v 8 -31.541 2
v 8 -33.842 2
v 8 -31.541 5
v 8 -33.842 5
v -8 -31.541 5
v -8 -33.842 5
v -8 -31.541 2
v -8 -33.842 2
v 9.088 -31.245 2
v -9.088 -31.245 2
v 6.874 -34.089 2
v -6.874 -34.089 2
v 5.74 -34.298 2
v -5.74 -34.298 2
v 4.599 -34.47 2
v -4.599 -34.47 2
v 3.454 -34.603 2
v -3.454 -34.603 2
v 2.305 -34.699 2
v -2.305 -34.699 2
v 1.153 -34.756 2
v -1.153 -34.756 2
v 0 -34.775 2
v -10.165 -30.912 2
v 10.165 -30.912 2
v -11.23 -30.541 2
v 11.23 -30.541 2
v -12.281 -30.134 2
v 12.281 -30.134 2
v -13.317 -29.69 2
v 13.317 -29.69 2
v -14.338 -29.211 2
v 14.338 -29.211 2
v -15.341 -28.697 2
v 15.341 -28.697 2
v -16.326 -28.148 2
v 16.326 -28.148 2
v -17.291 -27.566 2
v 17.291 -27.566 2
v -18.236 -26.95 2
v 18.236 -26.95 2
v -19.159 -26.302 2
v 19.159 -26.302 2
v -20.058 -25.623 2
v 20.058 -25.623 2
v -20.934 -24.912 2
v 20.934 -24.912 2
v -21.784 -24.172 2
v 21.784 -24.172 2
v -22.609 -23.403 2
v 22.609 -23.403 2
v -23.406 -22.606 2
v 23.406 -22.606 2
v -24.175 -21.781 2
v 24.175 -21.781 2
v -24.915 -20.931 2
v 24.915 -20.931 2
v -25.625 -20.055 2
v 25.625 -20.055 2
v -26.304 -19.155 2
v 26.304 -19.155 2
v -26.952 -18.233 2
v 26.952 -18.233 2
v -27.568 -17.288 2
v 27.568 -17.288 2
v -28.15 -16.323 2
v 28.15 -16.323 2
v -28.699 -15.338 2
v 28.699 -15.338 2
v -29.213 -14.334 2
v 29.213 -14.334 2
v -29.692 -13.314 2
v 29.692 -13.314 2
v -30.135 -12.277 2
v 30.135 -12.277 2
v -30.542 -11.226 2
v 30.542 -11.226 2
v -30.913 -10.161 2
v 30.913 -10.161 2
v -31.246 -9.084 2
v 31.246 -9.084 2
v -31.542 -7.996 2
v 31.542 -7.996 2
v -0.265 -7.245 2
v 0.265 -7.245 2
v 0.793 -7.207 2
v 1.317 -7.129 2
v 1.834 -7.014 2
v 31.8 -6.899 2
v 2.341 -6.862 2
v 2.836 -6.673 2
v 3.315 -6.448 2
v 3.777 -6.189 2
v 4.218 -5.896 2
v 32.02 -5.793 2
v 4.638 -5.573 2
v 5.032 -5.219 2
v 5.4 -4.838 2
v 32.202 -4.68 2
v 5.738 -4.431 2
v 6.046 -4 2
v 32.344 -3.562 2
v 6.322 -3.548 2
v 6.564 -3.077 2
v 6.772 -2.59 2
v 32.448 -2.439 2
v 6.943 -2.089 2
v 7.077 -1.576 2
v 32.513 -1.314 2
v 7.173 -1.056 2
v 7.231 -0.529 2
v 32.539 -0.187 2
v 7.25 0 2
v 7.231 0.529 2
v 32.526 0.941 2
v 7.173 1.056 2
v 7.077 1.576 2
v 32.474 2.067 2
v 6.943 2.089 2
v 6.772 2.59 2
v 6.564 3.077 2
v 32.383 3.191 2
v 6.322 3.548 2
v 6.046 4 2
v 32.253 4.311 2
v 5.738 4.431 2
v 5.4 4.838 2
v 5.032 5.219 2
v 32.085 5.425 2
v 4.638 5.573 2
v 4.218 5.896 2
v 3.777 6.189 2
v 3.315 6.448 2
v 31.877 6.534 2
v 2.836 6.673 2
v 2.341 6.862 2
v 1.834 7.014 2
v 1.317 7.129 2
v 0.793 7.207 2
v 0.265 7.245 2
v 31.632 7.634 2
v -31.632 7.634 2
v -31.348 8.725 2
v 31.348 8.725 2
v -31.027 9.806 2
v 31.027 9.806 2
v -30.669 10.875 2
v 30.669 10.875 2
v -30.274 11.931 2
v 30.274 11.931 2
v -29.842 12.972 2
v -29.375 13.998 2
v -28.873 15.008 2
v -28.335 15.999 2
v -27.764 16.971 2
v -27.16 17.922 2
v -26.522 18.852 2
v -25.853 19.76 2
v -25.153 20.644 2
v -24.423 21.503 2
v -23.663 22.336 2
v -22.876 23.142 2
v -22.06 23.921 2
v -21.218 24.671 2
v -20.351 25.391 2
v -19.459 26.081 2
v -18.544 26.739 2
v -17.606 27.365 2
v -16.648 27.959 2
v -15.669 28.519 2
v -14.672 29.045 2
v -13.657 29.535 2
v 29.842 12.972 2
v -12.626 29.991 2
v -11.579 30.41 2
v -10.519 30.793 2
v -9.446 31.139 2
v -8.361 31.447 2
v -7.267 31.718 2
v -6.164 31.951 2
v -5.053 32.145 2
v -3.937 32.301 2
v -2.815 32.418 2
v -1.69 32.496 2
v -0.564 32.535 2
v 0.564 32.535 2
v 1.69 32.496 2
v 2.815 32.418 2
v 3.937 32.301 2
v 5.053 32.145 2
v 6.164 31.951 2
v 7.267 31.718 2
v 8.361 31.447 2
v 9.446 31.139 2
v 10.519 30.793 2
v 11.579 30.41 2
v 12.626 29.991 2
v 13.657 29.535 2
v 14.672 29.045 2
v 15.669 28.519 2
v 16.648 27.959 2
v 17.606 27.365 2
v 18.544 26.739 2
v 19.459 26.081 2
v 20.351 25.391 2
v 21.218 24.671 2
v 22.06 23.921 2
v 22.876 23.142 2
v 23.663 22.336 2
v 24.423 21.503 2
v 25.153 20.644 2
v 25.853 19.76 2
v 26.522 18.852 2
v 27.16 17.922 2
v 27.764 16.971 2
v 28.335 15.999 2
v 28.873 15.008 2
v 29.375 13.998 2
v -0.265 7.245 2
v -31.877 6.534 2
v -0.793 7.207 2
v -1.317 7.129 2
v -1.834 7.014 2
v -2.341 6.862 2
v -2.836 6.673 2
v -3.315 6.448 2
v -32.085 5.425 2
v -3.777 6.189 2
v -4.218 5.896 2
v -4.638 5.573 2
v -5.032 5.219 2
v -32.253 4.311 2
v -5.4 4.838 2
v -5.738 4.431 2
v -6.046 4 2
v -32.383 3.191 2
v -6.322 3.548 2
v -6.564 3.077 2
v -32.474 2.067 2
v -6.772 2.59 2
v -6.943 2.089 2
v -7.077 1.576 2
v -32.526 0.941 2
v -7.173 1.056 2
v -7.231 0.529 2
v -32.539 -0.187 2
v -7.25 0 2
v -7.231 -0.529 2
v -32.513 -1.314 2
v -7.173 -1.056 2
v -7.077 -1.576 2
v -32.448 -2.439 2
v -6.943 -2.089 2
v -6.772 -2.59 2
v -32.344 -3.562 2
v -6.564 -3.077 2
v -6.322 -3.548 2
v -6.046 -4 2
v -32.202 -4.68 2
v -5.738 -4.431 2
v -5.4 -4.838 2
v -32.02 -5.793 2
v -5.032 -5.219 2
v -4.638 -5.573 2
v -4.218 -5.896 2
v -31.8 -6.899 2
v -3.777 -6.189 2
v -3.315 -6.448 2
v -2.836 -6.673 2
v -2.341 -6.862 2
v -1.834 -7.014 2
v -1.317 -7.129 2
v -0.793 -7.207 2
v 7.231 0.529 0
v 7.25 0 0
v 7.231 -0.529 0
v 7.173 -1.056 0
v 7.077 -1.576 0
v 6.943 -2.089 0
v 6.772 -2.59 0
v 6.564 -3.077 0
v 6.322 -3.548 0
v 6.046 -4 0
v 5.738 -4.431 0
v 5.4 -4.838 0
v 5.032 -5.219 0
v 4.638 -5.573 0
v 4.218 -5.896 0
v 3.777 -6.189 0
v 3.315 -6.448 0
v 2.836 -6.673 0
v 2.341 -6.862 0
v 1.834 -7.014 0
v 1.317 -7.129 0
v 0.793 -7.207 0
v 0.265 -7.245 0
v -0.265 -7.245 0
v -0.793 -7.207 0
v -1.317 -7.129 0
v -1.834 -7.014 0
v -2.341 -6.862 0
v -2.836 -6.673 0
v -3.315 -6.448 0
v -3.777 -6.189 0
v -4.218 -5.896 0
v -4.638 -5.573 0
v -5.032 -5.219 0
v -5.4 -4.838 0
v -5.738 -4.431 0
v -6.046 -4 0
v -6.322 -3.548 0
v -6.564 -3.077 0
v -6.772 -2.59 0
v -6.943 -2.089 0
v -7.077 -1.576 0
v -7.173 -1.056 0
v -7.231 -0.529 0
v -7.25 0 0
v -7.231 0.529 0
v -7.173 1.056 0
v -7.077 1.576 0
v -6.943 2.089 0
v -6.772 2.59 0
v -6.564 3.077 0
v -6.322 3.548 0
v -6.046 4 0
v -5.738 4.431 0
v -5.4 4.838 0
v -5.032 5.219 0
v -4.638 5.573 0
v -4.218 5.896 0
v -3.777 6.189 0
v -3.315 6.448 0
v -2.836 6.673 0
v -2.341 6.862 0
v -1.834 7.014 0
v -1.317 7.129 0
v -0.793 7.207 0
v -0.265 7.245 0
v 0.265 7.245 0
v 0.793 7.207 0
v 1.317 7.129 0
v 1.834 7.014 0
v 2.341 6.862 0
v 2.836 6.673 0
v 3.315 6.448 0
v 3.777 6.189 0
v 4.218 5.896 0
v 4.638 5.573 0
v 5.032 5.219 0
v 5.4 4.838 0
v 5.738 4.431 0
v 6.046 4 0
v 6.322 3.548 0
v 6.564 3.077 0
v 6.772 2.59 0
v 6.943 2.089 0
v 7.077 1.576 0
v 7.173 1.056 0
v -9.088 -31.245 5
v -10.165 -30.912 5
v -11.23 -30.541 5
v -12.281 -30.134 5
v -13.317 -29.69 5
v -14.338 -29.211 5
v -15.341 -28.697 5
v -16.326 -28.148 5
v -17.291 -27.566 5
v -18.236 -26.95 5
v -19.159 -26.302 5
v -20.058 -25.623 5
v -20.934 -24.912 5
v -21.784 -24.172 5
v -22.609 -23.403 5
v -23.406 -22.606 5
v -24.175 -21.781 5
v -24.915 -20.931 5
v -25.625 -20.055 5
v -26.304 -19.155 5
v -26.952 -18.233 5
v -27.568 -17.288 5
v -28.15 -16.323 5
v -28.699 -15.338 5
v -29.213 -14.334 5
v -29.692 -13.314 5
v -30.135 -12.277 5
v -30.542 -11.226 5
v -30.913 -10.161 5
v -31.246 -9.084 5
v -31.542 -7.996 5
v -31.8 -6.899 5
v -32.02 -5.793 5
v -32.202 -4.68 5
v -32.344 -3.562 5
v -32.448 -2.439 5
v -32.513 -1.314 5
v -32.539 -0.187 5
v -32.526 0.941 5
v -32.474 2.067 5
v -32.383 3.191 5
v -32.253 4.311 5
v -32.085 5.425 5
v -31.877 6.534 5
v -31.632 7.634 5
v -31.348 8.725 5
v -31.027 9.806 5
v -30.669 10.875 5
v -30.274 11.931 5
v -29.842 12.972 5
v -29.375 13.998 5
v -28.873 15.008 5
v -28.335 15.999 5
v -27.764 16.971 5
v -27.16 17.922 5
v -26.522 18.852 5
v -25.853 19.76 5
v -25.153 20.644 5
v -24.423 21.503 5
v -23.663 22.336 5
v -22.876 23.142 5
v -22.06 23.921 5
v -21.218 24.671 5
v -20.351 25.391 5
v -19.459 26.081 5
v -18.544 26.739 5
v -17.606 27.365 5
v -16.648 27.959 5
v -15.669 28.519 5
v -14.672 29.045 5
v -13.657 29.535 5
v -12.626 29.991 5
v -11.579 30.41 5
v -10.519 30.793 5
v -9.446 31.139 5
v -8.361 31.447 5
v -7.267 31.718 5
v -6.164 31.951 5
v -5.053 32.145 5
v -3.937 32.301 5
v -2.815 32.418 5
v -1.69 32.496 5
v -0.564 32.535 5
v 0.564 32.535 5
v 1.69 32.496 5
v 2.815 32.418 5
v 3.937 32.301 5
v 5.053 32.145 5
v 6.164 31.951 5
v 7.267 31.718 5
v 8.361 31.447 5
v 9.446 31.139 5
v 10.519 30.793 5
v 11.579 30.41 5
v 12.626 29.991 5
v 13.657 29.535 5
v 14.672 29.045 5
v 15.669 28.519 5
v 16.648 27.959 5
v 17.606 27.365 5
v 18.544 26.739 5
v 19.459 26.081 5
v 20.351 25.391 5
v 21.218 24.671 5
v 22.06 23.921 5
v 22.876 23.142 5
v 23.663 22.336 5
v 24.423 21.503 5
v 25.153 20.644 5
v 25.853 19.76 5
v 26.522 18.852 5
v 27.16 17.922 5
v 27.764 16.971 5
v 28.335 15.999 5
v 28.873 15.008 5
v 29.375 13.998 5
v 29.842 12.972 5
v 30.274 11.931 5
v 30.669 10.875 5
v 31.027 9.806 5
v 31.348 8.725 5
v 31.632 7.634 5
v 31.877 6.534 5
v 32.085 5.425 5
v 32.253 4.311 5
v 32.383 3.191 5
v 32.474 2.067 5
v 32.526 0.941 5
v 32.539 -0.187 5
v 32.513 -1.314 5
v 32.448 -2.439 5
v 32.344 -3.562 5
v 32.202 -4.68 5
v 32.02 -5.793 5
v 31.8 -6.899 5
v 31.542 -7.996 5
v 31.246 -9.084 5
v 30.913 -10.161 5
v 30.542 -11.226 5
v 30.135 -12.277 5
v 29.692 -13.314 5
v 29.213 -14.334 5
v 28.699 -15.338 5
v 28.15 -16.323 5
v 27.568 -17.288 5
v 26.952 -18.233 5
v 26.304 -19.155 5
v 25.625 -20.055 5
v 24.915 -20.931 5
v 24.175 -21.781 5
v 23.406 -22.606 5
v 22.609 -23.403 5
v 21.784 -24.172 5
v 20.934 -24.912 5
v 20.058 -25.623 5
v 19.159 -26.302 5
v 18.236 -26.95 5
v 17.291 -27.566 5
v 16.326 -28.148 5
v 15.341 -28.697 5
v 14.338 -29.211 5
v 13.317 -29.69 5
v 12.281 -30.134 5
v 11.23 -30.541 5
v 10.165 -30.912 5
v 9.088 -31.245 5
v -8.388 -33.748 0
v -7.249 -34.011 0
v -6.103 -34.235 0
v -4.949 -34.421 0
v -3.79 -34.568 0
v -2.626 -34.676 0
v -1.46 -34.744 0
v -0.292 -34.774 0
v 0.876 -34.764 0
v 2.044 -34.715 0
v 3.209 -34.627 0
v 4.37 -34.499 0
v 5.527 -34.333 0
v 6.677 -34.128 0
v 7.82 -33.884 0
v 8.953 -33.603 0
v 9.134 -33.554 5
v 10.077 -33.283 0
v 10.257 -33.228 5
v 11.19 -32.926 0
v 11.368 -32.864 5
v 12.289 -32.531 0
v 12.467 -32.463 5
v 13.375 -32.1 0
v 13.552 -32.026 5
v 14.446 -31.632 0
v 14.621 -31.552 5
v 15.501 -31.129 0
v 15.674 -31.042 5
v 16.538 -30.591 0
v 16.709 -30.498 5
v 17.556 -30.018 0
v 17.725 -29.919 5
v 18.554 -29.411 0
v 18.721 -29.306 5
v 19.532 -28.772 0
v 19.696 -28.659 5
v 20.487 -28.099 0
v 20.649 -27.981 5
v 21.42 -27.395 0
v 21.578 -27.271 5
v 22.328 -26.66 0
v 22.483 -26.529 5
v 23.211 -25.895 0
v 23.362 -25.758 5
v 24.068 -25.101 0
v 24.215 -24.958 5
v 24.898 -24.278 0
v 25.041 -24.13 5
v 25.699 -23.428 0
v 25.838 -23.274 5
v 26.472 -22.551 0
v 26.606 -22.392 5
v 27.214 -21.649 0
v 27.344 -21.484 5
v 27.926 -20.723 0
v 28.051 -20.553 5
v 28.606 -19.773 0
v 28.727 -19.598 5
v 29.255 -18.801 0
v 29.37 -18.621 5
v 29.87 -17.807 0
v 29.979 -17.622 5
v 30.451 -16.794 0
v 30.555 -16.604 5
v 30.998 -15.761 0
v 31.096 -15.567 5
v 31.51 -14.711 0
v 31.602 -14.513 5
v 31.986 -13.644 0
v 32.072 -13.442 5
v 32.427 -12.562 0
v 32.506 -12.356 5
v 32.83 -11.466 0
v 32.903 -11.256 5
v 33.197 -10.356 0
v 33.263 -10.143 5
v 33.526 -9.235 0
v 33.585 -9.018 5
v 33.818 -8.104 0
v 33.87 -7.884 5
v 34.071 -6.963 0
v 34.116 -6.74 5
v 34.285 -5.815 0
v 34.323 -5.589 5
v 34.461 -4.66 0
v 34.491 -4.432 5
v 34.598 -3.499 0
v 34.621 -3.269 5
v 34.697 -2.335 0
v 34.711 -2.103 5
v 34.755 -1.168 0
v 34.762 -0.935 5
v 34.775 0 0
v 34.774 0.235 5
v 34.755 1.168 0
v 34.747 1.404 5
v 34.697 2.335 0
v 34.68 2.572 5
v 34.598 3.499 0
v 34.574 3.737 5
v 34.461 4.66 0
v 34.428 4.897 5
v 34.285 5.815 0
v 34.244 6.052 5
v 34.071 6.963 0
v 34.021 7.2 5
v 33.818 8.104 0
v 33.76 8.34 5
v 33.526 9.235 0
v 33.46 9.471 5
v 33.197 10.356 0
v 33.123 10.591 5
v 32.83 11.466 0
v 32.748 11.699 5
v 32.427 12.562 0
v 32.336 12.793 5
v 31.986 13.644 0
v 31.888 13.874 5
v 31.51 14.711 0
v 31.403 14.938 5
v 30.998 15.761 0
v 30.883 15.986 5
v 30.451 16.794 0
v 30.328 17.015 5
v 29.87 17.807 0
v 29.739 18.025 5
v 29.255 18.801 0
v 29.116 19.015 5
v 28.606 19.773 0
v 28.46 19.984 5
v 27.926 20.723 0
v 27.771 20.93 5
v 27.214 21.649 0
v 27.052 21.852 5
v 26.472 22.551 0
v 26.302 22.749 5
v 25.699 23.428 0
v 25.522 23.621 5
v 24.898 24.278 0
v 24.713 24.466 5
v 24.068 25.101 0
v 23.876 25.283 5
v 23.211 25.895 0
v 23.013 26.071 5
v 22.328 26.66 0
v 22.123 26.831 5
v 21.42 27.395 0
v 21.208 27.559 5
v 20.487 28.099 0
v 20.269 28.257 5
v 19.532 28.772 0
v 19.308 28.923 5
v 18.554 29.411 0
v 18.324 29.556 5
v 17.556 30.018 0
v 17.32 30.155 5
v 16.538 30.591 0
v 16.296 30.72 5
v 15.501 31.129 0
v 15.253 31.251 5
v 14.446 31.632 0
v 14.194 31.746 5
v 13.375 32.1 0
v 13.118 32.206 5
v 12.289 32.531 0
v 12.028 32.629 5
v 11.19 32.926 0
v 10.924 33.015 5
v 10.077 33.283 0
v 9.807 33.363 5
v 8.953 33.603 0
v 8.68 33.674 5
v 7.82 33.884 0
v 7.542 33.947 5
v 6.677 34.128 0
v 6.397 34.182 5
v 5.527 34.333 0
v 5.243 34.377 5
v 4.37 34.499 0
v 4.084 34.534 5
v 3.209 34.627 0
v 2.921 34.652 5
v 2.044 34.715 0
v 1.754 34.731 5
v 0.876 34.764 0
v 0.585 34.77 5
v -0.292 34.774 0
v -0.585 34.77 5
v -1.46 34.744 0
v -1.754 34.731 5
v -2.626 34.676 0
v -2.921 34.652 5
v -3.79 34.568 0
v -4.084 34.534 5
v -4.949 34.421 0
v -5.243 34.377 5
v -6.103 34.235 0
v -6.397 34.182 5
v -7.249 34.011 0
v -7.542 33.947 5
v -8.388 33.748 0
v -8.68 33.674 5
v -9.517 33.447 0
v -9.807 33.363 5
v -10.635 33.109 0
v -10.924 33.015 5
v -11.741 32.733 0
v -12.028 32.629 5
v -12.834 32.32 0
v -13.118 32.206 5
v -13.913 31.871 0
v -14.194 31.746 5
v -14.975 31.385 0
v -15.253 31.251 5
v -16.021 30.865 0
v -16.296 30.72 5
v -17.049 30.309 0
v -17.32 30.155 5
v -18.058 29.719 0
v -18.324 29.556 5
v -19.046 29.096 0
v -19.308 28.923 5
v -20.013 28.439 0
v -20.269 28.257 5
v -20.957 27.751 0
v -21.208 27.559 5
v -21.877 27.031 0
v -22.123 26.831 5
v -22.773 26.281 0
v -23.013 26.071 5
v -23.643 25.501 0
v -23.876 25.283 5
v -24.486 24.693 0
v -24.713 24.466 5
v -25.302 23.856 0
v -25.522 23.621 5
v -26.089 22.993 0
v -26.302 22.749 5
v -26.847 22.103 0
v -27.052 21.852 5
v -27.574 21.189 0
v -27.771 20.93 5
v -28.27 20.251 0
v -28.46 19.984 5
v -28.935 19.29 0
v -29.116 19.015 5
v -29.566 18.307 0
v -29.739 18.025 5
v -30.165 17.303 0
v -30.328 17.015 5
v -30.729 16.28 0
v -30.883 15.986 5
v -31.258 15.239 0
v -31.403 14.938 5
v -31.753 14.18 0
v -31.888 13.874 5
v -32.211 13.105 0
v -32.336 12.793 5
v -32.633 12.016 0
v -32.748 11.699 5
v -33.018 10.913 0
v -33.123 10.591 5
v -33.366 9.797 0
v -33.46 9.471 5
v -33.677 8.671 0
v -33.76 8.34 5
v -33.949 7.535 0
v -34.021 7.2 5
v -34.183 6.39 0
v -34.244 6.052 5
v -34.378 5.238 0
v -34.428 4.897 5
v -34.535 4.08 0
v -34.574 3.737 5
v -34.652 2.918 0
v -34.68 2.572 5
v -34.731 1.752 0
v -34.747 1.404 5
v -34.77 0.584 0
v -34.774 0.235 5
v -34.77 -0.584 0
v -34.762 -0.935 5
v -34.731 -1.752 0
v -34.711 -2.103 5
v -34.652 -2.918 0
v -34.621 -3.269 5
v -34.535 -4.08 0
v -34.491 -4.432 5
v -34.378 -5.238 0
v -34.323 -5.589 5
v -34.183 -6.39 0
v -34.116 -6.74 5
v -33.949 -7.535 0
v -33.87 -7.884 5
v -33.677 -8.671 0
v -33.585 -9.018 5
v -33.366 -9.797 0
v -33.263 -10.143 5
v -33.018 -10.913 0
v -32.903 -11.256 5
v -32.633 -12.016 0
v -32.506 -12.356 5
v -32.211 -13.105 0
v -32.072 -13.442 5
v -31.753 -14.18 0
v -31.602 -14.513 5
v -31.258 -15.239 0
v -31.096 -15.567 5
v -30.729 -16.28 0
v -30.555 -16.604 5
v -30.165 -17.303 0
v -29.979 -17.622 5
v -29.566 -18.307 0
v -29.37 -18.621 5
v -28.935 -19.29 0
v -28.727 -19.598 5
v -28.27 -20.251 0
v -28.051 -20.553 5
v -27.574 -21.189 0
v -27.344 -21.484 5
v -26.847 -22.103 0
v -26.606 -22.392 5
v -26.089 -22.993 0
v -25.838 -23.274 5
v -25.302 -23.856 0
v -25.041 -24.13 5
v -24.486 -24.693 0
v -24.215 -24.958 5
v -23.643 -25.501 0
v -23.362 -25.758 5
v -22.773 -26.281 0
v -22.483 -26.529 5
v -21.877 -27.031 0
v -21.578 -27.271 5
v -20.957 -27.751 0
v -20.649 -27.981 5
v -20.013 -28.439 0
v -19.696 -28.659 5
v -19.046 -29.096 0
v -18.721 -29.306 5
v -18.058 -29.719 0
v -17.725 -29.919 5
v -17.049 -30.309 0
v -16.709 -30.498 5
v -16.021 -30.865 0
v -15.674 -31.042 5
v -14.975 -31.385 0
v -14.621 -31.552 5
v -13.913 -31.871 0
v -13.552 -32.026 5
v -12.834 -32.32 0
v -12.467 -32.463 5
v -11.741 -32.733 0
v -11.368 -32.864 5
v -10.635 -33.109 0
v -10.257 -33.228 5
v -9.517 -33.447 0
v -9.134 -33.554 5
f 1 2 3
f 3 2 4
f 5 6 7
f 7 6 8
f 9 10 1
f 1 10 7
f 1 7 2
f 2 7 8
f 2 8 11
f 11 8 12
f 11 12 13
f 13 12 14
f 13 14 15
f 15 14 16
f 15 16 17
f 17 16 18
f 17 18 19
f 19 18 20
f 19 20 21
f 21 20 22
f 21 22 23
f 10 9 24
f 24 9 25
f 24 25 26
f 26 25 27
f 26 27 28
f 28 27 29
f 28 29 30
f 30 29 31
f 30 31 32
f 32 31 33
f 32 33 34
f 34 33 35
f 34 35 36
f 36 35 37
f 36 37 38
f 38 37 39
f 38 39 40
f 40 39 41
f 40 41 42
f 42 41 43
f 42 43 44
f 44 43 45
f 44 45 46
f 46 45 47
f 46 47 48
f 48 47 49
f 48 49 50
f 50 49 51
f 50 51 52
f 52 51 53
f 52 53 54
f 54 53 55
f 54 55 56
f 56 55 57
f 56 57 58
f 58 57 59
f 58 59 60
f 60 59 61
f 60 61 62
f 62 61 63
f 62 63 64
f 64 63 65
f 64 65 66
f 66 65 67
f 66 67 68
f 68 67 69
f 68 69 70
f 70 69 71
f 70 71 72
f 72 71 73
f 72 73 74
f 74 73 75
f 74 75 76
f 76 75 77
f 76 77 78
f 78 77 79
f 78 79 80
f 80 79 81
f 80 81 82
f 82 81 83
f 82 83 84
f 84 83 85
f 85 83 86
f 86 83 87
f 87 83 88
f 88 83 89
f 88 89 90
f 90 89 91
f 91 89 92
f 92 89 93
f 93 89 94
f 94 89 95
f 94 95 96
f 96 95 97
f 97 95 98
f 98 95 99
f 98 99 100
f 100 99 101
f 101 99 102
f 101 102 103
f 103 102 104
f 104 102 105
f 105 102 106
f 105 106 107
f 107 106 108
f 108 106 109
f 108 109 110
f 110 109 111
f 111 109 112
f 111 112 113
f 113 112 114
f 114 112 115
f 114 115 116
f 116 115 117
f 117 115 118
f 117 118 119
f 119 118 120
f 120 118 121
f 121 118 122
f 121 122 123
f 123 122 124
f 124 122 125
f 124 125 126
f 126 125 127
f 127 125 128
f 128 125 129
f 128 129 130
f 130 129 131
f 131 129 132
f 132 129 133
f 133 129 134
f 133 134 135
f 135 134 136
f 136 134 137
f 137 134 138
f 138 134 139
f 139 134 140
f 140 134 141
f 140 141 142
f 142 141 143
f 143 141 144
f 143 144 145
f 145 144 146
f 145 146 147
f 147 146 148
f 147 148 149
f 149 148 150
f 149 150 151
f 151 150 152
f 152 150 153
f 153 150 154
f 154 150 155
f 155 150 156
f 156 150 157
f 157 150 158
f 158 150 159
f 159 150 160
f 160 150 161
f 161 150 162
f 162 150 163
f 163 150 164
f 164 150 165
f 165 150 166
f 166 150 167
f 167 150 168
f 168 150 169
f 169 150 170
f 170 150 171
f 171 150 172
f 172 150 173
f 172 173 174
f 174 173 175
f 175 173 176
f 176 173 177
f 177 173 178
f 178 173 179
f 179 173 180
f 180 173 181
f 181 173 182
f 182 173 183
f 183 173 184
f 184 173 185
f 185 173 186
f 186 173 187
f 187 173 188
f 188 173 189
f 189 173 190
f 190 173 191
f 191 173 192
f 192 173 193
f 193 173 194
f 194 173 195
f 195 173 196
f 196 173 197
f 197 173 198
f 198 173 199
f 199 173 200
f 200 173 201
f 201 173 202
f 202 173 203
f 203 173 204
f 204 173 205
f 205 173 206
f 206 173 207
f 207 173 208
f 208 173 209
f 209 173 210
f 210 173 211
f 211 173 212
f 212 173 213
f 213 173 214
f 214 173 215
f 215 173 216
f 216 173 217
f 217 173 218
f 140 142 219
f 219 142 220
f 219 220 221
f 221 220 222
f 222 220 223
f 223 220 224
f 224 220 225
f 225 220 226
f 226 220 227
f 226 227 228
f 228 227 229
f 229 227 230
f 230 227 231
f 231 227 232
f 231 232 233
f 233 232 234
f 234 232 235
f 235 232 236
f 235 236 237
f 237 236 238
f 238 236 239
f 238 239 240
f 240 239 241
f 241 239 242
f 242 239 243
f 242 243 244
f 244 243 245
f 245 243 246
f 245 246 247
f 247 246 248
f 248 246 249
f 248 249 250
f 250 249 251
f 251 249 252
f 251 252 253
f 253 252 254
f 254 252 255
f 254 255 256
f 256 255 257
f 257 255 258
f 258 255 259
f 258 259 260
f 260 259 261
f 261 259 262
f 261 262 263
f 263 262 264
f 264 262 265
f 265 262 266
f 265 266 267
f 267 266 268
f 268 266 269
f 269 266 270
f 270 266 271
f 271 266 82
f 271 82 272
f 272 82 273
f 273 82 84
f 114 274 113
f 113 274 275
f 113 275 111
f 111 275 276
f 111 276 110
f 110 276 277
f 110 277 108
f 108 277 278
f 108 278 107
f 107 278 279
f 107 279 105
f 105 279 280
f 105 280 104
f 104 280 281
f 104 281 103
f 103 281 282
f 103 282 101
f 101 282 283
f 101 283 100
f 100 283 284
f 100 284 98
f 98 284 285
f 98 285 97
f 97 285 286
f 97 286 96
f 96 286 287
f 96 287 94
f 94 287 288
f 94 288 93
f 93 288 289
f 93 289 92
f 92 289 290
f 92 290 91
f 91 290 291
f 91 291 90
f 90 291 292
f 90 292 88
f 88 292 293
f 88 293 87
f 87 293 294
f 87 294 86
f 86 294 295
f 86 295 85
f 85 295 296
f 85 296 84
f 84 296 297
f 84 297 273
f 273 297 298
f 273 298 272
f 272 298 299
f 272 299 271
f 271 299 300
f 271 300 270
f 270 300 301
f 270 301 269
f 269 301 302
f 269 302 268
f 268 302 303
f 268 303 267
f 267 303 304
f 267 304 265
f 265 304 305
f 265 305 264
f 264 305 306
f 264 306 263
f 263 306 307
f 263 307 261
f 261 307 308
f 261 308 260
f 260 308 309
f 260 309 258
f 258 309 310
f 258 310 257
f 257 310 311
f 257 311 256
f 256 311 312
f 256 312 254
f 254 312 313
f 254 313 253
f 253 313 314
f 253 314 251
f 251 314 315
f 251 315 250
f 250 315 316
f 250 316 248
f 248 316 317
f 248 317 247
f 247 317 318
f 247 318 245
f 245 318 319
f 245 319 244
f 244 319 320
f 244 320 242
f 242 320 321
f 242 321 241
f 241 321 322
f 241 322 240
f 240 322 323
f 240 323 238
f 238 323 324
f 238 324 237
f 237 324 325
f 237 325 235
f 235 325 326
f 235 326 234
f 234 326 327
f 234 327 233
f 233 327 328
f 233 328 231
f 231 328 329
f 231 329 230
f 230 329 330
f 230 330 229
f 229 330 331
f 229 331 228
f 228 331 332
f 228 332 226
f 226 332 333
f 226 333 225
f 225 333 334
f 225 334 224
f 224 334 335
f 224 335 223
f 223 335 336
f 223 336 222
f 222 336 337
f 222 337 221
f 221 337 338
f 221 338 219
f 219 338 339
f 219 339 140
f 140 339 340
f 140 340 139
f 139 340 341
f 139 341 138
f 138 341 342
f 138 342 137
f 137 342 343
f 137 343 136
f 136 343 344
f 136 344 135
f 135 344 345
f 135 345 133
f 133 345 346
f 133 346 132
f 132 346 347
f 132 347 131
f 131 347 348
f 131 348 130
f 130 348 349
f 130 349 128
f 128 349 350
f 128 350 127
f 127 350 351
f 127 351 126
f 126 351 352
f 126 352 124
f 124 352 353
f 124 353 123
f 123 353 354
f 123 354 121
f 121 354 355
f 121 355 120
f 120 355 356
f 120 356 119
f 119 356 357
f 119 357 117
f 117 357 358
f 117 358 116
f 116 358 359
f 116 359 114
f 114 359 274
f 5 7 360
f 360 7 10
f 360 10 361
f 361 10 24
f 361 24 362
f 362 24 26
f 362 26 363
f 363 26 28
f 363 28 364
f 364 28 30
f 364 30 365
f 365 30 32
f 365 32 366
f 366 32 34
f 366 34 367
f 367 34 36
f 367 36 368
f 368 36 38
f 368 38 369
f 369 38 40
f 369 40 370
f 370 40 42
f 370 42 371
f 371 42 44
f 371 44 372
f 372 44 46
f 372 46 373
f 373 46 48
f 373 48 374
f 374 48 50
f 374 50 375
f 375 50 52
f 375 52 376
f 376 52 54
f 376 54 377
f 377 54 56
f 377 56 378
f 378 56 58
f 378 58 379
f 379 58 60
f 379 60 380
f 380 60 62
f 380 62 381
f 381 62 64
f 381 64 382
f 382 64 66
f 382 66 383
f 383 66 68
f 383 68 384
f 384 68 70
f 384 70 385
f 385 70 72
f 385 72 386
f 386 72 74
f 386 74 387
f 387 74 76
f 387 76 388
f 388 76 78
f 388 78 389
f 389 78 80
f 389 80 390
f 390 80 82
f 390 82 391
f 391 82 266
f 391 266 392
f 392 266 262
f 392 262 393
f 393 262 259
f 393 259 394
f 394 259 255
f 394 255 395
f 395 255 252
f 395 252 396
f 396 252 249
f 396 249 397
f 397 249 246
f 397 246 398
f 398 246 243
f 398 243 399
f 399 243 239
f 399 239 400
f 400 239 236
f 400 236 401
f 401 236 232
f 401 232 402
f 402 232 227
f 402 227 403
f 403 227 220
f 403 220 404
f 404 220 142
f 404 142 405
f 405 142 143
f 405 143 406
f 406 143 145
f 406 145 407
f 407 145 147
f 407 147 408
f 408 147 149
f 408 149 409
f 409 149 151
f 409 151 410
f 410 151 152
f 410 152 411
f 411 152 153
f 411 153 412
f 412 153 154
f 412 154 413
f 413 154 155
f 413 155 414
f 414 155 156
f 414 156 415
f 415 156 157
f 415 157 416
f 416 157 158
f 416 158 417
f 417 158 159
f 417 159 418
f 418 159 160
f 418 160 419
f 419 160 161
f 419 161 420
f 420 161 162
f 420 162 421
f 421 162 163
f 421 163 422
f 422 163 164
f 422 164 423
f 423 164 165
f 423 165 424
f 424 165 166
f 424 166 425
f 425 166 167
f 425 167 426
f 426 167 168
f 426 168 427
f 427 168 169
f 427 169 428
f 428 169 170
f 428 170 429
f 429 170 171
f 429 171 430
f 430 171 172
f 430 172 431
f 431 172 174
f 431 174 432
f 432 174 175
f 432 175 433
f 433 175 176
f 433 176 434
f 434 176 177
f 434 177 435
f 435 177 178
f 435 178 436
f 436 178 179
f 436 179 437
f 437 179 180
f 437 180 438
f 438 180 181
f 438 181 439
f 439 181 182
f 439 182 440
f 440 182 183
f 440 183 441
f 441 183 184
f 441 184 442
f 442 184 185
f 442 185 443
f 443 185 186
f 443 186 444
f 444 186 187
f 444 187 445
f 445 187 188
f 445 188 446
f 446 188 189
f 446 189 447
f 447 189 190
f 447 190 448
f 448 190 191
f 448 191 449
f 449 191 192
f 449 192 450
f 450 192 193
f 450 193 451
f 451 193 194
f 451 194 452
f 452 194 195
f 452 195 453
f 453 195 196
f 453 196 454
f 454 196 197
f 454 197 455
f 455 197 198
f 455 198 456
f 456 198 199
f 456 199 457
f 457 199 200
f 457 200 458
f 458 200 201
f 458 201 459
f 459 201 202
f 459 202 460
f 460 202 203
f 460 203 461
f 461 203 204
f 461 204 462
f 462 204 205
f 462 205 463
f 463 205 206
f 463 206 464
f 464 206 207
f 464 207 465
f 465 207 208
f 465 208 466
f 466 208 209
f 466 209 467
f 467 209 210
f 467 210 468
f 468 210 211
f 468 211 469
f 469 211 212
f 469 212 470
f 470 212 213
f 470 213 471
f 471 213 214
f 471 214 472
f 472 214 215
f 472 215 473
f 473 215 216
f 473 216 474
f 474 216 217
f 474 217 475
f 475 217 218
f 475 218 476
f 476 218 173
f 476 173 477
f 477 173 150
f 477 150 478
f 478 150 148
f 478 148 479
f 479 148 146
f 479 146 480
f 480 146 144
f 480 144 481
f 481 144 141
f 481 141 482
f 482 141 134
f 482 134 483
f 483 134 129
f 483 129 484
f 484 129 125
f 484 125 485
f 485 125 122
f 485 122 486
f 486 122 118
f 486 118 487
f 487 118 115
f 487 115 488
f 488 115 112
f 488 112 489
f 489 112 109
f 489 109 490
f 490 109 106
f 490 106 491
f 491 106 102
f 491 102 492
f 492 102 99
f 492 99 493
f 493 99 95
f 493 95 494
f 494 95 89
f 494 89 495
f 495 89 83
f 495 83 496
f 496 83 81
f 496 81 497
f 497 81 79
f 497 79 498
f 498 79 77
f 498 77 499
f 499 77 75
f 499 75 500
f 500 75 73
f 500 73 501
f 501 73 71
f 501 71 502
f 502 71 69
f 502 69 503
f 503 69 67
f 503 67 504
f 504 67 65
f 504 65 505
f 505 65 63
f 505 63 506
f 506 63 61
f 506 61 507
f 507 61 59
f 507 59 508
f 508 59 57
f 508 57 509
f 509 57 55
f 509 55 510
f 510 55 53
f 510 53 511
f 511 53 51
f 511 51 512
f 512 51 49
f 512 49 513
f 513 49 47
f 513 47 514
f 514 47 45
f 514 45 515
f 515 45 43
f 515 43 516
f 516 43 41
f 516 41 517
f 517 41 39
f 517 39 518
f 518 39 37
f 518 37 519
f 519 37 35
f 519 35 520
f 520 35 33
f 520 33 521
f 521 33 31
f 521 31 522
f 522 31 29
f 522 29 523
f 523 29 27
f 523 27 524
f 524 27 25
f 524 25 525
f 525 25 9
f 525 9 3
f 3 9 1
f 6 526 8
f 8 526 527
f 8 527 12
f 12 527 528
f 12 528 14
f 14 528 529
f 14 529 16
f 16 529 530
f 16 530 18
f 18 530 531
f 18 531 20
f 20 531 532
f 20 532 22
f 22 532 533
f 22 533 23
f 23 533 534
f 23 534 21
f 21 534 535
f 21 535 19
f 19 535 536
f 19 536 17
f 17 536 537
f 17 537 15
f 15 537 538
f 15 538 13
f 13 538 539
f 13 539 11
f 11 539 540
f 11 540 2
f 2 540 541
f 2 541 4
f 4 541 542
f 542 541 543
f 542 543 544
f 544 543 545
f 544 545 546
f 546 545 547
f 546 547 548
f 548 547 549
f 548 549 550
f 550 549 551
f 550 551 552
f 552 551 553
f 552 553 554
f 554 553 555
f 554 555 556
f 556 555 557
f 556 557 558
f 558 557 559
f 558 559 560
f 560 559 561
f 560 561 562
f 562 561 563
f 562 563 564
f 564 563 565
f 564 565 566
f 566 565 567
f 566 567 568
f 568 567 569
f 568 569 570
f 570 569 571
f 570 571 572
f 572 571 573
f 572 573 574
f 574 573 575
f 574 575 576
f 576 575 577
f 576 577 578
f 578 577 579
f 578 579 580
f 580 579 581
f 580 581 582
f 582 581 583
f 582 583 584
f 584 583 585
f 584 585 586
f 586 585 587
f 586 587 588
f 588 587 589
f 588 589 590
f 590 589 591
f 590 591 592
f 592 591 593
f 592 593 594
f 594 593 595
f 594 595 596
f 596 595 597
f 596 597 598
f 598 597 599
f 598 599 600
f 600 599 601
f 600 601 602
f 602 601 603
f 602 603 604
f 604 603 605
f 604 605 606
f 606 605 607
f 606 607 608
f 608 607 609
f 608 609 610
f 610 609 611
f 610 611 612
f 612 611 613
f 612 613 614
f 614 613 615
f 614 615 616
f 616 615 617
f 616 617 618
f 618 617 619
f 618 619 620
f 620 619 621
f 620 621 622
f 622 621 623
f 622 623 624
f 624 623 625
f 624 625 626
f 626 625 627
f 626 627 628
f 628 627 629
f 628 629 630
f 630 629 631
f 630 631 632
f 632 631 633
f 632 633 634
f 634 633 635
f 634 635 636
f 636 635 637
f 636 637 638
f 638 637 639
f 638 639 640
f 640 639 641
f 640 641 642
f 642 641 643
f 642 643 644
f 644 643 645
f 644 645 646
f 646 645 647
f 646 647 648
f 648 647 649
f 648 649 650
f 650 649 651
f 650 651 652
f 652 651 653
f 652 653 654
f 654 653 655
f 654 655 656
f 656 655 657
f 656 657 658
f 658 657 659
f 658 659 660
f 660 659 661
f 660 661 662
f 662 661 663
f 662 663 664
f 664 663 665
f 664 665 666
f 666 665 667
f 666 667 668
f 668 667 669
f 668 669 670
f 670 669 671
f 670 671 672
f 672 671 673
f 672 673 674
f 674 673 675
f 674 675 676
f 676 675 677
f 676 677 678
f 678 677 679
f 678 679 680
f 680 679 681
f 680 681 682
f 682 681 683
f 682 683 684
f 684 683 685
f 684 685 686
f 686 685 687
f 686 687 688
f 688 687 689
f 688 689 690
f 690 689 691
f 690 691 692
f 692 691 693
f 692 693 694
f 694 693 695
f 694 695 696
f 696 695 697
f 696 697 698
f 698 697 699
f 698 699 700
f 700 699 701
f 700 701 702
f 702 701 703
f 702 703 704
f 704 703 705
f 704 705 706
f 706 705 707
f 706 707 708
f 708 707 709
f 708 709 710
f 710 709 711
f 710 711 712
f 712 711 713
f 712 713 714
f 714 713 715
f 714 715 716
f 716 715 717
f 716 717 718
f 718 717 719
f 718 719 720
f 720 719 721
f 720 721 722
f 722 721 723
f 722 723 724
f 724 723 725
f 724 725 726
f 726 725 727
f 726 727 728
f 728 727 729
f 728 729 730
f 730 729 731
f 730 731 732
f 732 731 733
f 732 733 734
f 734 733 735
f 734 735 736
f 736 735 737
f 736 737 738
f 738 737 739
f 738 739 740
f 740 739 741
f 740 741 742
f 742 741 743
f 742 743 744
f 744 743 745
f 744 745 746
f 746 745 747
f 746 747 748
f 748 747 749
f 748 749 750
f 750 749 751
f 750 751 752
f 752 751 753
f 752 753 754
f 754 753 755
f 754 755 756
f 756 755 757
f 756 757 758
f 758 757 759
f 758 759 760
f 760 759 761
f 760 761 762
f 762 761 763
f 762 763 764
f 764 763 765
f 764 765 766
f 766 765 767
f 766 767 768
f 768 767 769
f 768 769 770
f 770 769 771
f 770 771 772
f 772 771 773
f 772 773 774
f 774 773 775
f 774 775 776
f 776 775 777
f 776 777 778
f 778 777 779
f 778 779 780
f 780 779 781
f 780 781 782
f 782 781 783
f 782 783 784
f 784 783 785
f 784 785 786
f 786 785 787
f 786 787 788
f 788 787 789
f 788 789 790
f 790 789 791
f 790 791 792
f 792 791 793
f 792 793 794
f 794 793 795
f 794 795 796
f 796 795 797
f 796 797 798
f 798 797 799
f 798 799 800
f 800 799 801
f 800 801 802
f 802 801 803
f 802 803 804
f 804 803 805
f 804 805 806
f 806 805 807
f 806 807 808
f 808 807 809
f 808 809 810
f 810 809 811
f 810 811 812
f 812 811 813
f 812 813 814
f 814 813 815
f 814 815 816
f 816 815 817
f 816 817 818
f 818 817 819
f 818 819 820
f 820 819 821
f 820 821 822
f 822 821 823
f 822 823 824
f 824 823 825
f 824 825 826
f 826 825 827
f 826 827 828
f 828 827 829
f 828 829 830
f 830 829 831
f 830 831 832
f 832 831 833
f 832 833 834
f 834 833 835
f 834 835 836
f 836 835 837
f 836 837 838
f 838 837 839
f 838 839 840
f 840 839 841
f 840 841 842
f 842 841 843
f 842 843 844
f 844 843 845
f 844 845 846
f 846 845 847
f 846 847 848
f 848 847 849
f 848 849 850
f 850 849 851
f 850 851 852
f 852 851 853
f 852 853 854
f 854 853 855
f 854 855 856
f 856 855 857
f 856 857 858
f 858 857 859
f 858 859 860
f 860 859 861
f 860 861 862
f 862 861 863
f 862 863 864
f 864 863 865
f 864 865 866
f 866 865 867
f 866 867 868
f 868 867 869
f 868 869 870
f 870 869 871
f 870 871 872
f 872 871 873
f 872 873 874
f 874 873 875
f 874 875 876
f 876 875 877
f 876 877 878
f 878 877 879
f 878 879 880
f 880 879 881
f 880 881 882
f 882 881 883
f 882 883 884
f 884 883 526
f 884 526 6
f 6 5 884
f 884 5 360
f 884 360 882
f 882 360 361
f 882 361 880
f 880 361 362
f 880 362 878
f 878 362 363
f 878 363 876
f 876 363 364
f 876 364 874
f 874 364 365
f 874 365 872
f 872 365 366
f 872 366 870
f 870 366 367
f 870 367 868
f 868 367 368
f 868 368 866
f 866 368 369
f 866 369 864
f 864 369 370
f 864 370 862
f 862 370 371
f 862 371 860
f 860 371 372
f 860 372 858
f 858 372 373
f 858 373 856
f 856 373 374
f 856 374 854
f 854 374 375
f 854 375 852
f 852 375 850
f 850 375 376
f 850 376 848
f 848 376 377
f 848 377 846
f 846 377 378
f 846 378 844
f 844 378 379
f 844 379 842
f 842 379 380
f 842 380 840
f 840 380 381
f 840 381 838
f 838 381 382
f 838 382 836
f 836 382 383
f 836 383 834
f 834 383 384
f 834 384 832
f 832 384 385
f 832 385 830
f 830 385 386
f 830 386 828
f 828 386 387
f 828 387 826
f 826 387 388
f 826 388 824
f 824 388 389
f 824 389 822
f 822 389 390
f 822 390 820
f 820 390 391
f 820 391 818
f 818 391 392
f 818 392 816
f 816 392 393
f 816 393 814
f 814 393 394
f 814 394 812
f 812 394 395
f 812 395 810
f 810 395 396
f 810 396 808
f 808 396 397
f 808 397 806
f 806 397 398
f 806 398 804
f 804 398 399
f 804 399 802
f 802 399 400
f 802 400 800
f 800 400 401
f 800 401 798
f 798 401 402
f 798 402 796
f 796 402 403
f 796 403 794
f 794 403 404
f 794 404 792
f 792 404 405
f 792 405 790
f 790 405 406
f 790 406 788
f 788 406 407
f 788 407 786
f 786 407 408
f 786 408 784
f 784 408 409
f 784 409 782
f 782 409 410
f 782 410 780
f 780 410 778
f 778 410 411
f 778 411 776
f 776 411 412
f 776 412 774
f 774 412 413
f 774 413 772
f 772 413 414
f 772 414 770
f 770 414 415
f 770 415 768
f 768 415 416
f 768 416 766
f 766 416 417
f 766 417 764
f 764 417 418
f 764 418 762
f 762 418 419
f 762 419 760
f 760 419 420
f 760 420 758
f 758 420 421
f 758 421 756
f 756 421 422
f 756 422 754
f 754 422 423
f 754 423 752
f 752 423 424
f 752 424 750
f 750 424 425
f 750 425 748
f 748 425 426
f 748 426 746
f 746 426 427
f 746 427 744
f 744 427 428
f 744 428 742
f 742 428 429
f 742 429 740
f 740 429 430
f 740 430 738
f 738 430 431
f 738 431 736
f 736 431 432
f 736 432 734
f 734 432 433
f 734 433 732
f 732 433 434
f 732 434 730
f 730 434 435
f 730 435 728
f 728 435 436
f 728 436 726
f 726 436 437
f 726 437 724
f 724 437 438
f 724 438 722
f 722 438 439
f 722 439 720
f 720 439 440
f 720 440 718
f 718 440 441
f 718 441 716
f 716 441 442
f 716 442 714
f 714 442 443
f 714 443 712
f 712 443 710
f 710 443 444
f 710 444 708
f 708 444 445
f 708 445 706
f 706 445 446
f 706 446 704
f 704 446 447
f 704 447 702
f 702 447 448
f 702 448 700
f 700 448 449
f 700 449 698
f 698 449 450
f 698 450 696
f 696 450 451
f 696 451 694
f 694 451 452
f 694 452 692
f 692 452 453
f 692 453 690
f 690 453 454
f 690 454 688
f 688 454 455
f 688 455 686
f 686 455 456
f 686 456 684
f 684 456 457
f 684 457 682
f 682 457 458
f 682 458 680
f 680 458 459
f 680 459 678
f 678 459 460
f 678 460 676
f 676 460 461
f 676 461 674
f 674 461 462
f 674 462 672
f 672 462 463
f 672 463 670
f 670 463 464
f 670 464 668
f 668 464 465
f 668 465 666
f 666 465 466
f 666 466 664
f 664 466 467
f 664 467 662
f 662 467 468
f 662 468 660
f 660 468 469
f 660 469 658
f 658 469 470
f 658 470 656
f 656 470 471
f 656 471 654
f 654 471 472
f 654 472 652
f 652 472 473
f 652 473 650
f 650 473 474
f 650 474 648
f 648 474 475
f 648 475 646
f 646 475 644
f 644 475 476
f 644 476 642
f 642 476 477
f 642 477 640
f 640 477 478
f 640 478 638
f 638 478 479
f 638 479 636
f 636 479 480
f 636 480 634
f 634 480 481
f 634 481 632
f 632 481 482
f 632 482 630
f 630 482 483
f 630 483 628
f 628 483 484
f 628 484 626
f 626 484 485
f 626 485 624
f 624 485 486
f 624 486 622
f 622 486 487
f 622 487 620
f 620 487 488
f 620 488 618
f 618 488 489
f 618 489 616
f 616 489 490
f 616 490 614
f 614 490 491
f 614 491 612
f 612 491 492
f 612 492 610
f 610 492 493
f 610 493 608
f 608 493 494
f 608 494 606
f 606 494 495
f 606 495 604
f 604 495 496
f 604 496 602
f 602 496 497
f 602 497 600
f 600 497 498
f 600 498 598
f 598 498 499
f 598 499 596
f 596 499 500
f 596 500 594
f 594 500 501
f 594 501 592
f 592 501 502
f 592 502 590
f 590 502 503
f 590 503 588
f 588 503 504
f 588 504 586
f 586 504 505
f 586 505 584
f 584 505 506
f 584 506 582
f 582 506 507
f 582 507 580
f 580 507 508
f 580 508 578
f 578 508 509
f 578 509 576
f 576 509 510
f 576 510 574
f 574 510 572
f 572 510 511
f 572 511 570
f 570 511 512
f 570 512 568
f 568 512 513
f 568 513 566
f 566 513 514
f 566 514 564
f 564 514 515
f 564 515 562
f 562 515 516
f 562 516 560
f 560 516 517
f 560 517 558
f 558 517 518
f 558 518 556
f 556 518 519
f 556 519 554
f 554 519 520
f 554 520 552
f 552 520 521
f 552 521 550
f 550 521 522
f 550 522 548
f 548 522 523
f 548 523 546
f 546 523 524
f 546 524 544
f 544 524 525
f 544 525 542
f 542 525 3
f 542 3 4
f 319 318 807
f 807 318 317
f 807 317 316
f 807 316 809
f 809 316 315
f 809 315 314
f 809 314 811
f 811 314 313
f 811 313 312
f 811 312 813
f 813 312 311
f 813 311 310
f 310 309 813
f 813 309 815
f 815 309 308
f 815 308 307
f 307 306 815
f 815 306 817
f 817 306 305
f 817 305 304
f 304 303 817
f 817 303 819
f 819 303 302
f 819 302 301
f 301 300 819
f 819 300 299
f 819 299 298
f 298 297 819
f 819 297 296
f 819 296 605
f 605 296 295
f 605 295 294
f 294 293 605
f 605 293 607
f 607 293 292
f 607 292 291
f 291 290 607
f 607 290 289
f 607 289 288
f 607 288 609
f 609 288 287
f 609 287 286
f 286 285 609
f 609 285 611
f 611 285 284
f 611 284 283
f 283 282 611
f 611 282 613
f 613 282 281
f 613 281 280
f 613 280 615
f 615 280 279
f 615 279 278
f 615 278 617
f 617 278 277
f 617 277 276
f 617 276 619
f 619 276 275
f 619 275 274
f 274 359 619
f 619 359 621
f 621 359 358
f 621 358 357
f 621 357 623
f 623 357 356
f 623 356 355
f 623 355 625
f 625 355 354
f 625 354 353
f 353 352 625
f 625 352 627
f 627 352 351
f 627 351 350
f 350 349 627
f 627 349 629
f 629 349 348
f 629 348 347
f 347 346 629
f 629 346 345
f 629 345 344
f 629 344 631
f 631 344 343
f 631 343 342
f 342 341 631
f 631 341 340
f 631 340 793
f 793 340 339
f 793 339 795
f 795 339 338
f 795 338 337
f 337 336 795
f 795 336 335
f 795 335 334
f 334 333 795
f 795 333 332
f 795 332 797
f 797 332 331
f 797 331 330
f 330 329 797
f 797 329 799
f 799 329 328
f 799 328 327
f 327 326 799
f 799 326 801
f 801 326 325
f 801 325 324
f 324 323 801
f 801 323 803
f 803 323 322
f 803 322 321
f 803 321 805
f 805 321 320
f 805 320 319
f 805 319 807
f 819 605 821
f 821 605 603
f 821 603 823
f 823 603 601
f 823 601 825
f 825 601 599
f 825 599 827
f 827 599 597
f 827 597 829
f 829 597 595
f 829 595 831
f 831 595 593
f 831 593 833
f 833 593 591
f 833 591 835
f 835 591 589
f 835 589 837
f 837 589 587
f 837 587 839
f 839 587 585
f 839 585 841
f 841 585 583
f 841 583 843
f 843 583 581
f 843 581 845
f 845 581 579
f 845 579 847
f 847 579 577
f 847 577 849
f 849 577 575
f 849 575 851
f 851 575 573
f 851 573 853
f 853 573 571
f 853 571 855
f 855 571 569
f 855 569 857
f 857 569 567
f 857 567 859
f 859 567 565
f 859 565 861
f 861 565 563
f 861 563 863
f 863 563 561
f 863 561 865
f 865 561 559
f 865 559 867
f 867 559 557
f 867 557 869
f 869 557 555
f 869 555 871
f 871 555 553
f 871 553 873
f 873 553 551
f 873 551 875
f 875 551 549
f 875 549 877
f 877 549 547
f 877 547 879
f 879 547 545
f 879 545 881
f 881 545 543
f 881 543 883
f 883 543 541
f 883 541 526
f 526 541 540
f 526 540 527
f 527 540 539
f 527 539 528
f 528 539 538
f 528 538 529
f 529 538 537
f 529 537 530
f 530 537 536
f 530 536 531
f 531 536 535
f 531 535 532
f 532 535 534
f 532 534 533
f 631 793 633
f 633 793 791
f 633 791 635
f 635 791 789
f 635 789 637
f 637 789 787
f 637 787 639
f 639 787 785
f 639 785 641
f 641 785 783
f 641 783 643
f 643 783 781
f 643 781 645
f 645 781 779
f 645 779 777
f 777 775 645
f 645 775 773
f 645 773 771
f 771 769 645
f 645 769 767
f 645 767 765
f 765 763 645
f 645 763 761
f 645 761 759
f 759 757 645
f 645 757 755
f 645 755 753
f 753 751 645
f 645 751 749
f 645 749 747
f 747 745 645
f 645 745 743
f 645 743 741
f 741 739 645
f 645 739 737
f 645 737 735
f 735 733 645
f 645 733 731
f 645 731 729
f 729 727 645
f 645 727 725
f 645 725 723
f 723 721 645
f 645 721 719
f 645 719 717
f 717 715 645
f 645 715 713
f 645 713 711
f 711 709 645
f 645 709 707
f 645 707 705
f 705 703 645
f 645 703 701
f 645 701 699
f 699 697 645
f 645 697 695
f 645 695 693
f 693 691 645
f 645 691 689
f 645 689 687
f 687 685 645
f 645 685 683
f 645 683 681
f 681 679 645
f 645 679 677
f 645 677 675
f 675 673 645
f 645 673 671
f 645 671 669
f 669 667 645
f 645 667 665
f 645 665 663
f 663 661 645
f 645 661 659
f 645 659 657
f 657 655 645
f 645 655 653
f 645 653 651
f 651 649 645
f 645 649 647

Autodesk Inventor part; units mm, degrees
ref_plane "YZ Plane" through (0, 0, 0) normal (1, 0, 0) x (0, 1, 0)
ref_plane "XZ Plane" through (0, 0, 0) normal (0, 1, 0) x (-1, 0, 0)
ref_plane "XY Plane" through (0, 0, 0) normal (0, 0, 1) x (1, 0, 0)
sketch "Skizze1" plane through (0, 0, 0) normal (0, 0, 1) x (1, 0, 0)
  circle A0 centre (0, 0) radius 34.775
  dimension "d0" = 69.55
extrude "Extrusion1" add sketch "Skizze1" along normal blind 5
sketch "Skizze2" plane through (0, 0, 5) normal (0, 0, 1) x (1, 0, 0)
  circle A0 centre (0, 0) radius 32.54
  dimension "d3" = 65.08
extrude "Extrusion2" cut sketch "Skizze2" against normal blind 3
sketch "Skizze3" plane through (0, 0, 0) normal (0, 0, -1) x (-1, 0, 0)
  circle A0 centre (0, 0) radius 7.25
  dimension "d6" = 14.5
extrude "Extrusion3" cut sketch "Skizze3" against normal through all
sketch "Skizze4" plane through (0, 0, 5) normal (0, 0, 1) x (1, 0, 0)
  line L0 (-8, -26.775) -> (8, -26.775)
  line L1 (8, -26.775) -> (8, -42.775)
  line L2 (8, -42.775) -> (-8, -42.775)
  line L3 (-8, -42.775) -> (-8, -26.775)
  circle A0 centre (0, 0) radius 34.775 projected
  line L4 (-8, -26.775) -> (8, -42.775) construction
  line L5 (8, -26.775) -> (-8, -42.775) construction
  point P0 (0, -34.775)
  dimension "d9" = 16
  dimension "d10" = 16
extrude "Extrusion4" cut sketch "Skizze4" against normal up to surface (3 mm away) contours L0 L1 A0 L3 | A0 L1 L2 L3 picked at (0.896, -29.407)
properties part number "2024_08_28_Holder_disk_NS14"
